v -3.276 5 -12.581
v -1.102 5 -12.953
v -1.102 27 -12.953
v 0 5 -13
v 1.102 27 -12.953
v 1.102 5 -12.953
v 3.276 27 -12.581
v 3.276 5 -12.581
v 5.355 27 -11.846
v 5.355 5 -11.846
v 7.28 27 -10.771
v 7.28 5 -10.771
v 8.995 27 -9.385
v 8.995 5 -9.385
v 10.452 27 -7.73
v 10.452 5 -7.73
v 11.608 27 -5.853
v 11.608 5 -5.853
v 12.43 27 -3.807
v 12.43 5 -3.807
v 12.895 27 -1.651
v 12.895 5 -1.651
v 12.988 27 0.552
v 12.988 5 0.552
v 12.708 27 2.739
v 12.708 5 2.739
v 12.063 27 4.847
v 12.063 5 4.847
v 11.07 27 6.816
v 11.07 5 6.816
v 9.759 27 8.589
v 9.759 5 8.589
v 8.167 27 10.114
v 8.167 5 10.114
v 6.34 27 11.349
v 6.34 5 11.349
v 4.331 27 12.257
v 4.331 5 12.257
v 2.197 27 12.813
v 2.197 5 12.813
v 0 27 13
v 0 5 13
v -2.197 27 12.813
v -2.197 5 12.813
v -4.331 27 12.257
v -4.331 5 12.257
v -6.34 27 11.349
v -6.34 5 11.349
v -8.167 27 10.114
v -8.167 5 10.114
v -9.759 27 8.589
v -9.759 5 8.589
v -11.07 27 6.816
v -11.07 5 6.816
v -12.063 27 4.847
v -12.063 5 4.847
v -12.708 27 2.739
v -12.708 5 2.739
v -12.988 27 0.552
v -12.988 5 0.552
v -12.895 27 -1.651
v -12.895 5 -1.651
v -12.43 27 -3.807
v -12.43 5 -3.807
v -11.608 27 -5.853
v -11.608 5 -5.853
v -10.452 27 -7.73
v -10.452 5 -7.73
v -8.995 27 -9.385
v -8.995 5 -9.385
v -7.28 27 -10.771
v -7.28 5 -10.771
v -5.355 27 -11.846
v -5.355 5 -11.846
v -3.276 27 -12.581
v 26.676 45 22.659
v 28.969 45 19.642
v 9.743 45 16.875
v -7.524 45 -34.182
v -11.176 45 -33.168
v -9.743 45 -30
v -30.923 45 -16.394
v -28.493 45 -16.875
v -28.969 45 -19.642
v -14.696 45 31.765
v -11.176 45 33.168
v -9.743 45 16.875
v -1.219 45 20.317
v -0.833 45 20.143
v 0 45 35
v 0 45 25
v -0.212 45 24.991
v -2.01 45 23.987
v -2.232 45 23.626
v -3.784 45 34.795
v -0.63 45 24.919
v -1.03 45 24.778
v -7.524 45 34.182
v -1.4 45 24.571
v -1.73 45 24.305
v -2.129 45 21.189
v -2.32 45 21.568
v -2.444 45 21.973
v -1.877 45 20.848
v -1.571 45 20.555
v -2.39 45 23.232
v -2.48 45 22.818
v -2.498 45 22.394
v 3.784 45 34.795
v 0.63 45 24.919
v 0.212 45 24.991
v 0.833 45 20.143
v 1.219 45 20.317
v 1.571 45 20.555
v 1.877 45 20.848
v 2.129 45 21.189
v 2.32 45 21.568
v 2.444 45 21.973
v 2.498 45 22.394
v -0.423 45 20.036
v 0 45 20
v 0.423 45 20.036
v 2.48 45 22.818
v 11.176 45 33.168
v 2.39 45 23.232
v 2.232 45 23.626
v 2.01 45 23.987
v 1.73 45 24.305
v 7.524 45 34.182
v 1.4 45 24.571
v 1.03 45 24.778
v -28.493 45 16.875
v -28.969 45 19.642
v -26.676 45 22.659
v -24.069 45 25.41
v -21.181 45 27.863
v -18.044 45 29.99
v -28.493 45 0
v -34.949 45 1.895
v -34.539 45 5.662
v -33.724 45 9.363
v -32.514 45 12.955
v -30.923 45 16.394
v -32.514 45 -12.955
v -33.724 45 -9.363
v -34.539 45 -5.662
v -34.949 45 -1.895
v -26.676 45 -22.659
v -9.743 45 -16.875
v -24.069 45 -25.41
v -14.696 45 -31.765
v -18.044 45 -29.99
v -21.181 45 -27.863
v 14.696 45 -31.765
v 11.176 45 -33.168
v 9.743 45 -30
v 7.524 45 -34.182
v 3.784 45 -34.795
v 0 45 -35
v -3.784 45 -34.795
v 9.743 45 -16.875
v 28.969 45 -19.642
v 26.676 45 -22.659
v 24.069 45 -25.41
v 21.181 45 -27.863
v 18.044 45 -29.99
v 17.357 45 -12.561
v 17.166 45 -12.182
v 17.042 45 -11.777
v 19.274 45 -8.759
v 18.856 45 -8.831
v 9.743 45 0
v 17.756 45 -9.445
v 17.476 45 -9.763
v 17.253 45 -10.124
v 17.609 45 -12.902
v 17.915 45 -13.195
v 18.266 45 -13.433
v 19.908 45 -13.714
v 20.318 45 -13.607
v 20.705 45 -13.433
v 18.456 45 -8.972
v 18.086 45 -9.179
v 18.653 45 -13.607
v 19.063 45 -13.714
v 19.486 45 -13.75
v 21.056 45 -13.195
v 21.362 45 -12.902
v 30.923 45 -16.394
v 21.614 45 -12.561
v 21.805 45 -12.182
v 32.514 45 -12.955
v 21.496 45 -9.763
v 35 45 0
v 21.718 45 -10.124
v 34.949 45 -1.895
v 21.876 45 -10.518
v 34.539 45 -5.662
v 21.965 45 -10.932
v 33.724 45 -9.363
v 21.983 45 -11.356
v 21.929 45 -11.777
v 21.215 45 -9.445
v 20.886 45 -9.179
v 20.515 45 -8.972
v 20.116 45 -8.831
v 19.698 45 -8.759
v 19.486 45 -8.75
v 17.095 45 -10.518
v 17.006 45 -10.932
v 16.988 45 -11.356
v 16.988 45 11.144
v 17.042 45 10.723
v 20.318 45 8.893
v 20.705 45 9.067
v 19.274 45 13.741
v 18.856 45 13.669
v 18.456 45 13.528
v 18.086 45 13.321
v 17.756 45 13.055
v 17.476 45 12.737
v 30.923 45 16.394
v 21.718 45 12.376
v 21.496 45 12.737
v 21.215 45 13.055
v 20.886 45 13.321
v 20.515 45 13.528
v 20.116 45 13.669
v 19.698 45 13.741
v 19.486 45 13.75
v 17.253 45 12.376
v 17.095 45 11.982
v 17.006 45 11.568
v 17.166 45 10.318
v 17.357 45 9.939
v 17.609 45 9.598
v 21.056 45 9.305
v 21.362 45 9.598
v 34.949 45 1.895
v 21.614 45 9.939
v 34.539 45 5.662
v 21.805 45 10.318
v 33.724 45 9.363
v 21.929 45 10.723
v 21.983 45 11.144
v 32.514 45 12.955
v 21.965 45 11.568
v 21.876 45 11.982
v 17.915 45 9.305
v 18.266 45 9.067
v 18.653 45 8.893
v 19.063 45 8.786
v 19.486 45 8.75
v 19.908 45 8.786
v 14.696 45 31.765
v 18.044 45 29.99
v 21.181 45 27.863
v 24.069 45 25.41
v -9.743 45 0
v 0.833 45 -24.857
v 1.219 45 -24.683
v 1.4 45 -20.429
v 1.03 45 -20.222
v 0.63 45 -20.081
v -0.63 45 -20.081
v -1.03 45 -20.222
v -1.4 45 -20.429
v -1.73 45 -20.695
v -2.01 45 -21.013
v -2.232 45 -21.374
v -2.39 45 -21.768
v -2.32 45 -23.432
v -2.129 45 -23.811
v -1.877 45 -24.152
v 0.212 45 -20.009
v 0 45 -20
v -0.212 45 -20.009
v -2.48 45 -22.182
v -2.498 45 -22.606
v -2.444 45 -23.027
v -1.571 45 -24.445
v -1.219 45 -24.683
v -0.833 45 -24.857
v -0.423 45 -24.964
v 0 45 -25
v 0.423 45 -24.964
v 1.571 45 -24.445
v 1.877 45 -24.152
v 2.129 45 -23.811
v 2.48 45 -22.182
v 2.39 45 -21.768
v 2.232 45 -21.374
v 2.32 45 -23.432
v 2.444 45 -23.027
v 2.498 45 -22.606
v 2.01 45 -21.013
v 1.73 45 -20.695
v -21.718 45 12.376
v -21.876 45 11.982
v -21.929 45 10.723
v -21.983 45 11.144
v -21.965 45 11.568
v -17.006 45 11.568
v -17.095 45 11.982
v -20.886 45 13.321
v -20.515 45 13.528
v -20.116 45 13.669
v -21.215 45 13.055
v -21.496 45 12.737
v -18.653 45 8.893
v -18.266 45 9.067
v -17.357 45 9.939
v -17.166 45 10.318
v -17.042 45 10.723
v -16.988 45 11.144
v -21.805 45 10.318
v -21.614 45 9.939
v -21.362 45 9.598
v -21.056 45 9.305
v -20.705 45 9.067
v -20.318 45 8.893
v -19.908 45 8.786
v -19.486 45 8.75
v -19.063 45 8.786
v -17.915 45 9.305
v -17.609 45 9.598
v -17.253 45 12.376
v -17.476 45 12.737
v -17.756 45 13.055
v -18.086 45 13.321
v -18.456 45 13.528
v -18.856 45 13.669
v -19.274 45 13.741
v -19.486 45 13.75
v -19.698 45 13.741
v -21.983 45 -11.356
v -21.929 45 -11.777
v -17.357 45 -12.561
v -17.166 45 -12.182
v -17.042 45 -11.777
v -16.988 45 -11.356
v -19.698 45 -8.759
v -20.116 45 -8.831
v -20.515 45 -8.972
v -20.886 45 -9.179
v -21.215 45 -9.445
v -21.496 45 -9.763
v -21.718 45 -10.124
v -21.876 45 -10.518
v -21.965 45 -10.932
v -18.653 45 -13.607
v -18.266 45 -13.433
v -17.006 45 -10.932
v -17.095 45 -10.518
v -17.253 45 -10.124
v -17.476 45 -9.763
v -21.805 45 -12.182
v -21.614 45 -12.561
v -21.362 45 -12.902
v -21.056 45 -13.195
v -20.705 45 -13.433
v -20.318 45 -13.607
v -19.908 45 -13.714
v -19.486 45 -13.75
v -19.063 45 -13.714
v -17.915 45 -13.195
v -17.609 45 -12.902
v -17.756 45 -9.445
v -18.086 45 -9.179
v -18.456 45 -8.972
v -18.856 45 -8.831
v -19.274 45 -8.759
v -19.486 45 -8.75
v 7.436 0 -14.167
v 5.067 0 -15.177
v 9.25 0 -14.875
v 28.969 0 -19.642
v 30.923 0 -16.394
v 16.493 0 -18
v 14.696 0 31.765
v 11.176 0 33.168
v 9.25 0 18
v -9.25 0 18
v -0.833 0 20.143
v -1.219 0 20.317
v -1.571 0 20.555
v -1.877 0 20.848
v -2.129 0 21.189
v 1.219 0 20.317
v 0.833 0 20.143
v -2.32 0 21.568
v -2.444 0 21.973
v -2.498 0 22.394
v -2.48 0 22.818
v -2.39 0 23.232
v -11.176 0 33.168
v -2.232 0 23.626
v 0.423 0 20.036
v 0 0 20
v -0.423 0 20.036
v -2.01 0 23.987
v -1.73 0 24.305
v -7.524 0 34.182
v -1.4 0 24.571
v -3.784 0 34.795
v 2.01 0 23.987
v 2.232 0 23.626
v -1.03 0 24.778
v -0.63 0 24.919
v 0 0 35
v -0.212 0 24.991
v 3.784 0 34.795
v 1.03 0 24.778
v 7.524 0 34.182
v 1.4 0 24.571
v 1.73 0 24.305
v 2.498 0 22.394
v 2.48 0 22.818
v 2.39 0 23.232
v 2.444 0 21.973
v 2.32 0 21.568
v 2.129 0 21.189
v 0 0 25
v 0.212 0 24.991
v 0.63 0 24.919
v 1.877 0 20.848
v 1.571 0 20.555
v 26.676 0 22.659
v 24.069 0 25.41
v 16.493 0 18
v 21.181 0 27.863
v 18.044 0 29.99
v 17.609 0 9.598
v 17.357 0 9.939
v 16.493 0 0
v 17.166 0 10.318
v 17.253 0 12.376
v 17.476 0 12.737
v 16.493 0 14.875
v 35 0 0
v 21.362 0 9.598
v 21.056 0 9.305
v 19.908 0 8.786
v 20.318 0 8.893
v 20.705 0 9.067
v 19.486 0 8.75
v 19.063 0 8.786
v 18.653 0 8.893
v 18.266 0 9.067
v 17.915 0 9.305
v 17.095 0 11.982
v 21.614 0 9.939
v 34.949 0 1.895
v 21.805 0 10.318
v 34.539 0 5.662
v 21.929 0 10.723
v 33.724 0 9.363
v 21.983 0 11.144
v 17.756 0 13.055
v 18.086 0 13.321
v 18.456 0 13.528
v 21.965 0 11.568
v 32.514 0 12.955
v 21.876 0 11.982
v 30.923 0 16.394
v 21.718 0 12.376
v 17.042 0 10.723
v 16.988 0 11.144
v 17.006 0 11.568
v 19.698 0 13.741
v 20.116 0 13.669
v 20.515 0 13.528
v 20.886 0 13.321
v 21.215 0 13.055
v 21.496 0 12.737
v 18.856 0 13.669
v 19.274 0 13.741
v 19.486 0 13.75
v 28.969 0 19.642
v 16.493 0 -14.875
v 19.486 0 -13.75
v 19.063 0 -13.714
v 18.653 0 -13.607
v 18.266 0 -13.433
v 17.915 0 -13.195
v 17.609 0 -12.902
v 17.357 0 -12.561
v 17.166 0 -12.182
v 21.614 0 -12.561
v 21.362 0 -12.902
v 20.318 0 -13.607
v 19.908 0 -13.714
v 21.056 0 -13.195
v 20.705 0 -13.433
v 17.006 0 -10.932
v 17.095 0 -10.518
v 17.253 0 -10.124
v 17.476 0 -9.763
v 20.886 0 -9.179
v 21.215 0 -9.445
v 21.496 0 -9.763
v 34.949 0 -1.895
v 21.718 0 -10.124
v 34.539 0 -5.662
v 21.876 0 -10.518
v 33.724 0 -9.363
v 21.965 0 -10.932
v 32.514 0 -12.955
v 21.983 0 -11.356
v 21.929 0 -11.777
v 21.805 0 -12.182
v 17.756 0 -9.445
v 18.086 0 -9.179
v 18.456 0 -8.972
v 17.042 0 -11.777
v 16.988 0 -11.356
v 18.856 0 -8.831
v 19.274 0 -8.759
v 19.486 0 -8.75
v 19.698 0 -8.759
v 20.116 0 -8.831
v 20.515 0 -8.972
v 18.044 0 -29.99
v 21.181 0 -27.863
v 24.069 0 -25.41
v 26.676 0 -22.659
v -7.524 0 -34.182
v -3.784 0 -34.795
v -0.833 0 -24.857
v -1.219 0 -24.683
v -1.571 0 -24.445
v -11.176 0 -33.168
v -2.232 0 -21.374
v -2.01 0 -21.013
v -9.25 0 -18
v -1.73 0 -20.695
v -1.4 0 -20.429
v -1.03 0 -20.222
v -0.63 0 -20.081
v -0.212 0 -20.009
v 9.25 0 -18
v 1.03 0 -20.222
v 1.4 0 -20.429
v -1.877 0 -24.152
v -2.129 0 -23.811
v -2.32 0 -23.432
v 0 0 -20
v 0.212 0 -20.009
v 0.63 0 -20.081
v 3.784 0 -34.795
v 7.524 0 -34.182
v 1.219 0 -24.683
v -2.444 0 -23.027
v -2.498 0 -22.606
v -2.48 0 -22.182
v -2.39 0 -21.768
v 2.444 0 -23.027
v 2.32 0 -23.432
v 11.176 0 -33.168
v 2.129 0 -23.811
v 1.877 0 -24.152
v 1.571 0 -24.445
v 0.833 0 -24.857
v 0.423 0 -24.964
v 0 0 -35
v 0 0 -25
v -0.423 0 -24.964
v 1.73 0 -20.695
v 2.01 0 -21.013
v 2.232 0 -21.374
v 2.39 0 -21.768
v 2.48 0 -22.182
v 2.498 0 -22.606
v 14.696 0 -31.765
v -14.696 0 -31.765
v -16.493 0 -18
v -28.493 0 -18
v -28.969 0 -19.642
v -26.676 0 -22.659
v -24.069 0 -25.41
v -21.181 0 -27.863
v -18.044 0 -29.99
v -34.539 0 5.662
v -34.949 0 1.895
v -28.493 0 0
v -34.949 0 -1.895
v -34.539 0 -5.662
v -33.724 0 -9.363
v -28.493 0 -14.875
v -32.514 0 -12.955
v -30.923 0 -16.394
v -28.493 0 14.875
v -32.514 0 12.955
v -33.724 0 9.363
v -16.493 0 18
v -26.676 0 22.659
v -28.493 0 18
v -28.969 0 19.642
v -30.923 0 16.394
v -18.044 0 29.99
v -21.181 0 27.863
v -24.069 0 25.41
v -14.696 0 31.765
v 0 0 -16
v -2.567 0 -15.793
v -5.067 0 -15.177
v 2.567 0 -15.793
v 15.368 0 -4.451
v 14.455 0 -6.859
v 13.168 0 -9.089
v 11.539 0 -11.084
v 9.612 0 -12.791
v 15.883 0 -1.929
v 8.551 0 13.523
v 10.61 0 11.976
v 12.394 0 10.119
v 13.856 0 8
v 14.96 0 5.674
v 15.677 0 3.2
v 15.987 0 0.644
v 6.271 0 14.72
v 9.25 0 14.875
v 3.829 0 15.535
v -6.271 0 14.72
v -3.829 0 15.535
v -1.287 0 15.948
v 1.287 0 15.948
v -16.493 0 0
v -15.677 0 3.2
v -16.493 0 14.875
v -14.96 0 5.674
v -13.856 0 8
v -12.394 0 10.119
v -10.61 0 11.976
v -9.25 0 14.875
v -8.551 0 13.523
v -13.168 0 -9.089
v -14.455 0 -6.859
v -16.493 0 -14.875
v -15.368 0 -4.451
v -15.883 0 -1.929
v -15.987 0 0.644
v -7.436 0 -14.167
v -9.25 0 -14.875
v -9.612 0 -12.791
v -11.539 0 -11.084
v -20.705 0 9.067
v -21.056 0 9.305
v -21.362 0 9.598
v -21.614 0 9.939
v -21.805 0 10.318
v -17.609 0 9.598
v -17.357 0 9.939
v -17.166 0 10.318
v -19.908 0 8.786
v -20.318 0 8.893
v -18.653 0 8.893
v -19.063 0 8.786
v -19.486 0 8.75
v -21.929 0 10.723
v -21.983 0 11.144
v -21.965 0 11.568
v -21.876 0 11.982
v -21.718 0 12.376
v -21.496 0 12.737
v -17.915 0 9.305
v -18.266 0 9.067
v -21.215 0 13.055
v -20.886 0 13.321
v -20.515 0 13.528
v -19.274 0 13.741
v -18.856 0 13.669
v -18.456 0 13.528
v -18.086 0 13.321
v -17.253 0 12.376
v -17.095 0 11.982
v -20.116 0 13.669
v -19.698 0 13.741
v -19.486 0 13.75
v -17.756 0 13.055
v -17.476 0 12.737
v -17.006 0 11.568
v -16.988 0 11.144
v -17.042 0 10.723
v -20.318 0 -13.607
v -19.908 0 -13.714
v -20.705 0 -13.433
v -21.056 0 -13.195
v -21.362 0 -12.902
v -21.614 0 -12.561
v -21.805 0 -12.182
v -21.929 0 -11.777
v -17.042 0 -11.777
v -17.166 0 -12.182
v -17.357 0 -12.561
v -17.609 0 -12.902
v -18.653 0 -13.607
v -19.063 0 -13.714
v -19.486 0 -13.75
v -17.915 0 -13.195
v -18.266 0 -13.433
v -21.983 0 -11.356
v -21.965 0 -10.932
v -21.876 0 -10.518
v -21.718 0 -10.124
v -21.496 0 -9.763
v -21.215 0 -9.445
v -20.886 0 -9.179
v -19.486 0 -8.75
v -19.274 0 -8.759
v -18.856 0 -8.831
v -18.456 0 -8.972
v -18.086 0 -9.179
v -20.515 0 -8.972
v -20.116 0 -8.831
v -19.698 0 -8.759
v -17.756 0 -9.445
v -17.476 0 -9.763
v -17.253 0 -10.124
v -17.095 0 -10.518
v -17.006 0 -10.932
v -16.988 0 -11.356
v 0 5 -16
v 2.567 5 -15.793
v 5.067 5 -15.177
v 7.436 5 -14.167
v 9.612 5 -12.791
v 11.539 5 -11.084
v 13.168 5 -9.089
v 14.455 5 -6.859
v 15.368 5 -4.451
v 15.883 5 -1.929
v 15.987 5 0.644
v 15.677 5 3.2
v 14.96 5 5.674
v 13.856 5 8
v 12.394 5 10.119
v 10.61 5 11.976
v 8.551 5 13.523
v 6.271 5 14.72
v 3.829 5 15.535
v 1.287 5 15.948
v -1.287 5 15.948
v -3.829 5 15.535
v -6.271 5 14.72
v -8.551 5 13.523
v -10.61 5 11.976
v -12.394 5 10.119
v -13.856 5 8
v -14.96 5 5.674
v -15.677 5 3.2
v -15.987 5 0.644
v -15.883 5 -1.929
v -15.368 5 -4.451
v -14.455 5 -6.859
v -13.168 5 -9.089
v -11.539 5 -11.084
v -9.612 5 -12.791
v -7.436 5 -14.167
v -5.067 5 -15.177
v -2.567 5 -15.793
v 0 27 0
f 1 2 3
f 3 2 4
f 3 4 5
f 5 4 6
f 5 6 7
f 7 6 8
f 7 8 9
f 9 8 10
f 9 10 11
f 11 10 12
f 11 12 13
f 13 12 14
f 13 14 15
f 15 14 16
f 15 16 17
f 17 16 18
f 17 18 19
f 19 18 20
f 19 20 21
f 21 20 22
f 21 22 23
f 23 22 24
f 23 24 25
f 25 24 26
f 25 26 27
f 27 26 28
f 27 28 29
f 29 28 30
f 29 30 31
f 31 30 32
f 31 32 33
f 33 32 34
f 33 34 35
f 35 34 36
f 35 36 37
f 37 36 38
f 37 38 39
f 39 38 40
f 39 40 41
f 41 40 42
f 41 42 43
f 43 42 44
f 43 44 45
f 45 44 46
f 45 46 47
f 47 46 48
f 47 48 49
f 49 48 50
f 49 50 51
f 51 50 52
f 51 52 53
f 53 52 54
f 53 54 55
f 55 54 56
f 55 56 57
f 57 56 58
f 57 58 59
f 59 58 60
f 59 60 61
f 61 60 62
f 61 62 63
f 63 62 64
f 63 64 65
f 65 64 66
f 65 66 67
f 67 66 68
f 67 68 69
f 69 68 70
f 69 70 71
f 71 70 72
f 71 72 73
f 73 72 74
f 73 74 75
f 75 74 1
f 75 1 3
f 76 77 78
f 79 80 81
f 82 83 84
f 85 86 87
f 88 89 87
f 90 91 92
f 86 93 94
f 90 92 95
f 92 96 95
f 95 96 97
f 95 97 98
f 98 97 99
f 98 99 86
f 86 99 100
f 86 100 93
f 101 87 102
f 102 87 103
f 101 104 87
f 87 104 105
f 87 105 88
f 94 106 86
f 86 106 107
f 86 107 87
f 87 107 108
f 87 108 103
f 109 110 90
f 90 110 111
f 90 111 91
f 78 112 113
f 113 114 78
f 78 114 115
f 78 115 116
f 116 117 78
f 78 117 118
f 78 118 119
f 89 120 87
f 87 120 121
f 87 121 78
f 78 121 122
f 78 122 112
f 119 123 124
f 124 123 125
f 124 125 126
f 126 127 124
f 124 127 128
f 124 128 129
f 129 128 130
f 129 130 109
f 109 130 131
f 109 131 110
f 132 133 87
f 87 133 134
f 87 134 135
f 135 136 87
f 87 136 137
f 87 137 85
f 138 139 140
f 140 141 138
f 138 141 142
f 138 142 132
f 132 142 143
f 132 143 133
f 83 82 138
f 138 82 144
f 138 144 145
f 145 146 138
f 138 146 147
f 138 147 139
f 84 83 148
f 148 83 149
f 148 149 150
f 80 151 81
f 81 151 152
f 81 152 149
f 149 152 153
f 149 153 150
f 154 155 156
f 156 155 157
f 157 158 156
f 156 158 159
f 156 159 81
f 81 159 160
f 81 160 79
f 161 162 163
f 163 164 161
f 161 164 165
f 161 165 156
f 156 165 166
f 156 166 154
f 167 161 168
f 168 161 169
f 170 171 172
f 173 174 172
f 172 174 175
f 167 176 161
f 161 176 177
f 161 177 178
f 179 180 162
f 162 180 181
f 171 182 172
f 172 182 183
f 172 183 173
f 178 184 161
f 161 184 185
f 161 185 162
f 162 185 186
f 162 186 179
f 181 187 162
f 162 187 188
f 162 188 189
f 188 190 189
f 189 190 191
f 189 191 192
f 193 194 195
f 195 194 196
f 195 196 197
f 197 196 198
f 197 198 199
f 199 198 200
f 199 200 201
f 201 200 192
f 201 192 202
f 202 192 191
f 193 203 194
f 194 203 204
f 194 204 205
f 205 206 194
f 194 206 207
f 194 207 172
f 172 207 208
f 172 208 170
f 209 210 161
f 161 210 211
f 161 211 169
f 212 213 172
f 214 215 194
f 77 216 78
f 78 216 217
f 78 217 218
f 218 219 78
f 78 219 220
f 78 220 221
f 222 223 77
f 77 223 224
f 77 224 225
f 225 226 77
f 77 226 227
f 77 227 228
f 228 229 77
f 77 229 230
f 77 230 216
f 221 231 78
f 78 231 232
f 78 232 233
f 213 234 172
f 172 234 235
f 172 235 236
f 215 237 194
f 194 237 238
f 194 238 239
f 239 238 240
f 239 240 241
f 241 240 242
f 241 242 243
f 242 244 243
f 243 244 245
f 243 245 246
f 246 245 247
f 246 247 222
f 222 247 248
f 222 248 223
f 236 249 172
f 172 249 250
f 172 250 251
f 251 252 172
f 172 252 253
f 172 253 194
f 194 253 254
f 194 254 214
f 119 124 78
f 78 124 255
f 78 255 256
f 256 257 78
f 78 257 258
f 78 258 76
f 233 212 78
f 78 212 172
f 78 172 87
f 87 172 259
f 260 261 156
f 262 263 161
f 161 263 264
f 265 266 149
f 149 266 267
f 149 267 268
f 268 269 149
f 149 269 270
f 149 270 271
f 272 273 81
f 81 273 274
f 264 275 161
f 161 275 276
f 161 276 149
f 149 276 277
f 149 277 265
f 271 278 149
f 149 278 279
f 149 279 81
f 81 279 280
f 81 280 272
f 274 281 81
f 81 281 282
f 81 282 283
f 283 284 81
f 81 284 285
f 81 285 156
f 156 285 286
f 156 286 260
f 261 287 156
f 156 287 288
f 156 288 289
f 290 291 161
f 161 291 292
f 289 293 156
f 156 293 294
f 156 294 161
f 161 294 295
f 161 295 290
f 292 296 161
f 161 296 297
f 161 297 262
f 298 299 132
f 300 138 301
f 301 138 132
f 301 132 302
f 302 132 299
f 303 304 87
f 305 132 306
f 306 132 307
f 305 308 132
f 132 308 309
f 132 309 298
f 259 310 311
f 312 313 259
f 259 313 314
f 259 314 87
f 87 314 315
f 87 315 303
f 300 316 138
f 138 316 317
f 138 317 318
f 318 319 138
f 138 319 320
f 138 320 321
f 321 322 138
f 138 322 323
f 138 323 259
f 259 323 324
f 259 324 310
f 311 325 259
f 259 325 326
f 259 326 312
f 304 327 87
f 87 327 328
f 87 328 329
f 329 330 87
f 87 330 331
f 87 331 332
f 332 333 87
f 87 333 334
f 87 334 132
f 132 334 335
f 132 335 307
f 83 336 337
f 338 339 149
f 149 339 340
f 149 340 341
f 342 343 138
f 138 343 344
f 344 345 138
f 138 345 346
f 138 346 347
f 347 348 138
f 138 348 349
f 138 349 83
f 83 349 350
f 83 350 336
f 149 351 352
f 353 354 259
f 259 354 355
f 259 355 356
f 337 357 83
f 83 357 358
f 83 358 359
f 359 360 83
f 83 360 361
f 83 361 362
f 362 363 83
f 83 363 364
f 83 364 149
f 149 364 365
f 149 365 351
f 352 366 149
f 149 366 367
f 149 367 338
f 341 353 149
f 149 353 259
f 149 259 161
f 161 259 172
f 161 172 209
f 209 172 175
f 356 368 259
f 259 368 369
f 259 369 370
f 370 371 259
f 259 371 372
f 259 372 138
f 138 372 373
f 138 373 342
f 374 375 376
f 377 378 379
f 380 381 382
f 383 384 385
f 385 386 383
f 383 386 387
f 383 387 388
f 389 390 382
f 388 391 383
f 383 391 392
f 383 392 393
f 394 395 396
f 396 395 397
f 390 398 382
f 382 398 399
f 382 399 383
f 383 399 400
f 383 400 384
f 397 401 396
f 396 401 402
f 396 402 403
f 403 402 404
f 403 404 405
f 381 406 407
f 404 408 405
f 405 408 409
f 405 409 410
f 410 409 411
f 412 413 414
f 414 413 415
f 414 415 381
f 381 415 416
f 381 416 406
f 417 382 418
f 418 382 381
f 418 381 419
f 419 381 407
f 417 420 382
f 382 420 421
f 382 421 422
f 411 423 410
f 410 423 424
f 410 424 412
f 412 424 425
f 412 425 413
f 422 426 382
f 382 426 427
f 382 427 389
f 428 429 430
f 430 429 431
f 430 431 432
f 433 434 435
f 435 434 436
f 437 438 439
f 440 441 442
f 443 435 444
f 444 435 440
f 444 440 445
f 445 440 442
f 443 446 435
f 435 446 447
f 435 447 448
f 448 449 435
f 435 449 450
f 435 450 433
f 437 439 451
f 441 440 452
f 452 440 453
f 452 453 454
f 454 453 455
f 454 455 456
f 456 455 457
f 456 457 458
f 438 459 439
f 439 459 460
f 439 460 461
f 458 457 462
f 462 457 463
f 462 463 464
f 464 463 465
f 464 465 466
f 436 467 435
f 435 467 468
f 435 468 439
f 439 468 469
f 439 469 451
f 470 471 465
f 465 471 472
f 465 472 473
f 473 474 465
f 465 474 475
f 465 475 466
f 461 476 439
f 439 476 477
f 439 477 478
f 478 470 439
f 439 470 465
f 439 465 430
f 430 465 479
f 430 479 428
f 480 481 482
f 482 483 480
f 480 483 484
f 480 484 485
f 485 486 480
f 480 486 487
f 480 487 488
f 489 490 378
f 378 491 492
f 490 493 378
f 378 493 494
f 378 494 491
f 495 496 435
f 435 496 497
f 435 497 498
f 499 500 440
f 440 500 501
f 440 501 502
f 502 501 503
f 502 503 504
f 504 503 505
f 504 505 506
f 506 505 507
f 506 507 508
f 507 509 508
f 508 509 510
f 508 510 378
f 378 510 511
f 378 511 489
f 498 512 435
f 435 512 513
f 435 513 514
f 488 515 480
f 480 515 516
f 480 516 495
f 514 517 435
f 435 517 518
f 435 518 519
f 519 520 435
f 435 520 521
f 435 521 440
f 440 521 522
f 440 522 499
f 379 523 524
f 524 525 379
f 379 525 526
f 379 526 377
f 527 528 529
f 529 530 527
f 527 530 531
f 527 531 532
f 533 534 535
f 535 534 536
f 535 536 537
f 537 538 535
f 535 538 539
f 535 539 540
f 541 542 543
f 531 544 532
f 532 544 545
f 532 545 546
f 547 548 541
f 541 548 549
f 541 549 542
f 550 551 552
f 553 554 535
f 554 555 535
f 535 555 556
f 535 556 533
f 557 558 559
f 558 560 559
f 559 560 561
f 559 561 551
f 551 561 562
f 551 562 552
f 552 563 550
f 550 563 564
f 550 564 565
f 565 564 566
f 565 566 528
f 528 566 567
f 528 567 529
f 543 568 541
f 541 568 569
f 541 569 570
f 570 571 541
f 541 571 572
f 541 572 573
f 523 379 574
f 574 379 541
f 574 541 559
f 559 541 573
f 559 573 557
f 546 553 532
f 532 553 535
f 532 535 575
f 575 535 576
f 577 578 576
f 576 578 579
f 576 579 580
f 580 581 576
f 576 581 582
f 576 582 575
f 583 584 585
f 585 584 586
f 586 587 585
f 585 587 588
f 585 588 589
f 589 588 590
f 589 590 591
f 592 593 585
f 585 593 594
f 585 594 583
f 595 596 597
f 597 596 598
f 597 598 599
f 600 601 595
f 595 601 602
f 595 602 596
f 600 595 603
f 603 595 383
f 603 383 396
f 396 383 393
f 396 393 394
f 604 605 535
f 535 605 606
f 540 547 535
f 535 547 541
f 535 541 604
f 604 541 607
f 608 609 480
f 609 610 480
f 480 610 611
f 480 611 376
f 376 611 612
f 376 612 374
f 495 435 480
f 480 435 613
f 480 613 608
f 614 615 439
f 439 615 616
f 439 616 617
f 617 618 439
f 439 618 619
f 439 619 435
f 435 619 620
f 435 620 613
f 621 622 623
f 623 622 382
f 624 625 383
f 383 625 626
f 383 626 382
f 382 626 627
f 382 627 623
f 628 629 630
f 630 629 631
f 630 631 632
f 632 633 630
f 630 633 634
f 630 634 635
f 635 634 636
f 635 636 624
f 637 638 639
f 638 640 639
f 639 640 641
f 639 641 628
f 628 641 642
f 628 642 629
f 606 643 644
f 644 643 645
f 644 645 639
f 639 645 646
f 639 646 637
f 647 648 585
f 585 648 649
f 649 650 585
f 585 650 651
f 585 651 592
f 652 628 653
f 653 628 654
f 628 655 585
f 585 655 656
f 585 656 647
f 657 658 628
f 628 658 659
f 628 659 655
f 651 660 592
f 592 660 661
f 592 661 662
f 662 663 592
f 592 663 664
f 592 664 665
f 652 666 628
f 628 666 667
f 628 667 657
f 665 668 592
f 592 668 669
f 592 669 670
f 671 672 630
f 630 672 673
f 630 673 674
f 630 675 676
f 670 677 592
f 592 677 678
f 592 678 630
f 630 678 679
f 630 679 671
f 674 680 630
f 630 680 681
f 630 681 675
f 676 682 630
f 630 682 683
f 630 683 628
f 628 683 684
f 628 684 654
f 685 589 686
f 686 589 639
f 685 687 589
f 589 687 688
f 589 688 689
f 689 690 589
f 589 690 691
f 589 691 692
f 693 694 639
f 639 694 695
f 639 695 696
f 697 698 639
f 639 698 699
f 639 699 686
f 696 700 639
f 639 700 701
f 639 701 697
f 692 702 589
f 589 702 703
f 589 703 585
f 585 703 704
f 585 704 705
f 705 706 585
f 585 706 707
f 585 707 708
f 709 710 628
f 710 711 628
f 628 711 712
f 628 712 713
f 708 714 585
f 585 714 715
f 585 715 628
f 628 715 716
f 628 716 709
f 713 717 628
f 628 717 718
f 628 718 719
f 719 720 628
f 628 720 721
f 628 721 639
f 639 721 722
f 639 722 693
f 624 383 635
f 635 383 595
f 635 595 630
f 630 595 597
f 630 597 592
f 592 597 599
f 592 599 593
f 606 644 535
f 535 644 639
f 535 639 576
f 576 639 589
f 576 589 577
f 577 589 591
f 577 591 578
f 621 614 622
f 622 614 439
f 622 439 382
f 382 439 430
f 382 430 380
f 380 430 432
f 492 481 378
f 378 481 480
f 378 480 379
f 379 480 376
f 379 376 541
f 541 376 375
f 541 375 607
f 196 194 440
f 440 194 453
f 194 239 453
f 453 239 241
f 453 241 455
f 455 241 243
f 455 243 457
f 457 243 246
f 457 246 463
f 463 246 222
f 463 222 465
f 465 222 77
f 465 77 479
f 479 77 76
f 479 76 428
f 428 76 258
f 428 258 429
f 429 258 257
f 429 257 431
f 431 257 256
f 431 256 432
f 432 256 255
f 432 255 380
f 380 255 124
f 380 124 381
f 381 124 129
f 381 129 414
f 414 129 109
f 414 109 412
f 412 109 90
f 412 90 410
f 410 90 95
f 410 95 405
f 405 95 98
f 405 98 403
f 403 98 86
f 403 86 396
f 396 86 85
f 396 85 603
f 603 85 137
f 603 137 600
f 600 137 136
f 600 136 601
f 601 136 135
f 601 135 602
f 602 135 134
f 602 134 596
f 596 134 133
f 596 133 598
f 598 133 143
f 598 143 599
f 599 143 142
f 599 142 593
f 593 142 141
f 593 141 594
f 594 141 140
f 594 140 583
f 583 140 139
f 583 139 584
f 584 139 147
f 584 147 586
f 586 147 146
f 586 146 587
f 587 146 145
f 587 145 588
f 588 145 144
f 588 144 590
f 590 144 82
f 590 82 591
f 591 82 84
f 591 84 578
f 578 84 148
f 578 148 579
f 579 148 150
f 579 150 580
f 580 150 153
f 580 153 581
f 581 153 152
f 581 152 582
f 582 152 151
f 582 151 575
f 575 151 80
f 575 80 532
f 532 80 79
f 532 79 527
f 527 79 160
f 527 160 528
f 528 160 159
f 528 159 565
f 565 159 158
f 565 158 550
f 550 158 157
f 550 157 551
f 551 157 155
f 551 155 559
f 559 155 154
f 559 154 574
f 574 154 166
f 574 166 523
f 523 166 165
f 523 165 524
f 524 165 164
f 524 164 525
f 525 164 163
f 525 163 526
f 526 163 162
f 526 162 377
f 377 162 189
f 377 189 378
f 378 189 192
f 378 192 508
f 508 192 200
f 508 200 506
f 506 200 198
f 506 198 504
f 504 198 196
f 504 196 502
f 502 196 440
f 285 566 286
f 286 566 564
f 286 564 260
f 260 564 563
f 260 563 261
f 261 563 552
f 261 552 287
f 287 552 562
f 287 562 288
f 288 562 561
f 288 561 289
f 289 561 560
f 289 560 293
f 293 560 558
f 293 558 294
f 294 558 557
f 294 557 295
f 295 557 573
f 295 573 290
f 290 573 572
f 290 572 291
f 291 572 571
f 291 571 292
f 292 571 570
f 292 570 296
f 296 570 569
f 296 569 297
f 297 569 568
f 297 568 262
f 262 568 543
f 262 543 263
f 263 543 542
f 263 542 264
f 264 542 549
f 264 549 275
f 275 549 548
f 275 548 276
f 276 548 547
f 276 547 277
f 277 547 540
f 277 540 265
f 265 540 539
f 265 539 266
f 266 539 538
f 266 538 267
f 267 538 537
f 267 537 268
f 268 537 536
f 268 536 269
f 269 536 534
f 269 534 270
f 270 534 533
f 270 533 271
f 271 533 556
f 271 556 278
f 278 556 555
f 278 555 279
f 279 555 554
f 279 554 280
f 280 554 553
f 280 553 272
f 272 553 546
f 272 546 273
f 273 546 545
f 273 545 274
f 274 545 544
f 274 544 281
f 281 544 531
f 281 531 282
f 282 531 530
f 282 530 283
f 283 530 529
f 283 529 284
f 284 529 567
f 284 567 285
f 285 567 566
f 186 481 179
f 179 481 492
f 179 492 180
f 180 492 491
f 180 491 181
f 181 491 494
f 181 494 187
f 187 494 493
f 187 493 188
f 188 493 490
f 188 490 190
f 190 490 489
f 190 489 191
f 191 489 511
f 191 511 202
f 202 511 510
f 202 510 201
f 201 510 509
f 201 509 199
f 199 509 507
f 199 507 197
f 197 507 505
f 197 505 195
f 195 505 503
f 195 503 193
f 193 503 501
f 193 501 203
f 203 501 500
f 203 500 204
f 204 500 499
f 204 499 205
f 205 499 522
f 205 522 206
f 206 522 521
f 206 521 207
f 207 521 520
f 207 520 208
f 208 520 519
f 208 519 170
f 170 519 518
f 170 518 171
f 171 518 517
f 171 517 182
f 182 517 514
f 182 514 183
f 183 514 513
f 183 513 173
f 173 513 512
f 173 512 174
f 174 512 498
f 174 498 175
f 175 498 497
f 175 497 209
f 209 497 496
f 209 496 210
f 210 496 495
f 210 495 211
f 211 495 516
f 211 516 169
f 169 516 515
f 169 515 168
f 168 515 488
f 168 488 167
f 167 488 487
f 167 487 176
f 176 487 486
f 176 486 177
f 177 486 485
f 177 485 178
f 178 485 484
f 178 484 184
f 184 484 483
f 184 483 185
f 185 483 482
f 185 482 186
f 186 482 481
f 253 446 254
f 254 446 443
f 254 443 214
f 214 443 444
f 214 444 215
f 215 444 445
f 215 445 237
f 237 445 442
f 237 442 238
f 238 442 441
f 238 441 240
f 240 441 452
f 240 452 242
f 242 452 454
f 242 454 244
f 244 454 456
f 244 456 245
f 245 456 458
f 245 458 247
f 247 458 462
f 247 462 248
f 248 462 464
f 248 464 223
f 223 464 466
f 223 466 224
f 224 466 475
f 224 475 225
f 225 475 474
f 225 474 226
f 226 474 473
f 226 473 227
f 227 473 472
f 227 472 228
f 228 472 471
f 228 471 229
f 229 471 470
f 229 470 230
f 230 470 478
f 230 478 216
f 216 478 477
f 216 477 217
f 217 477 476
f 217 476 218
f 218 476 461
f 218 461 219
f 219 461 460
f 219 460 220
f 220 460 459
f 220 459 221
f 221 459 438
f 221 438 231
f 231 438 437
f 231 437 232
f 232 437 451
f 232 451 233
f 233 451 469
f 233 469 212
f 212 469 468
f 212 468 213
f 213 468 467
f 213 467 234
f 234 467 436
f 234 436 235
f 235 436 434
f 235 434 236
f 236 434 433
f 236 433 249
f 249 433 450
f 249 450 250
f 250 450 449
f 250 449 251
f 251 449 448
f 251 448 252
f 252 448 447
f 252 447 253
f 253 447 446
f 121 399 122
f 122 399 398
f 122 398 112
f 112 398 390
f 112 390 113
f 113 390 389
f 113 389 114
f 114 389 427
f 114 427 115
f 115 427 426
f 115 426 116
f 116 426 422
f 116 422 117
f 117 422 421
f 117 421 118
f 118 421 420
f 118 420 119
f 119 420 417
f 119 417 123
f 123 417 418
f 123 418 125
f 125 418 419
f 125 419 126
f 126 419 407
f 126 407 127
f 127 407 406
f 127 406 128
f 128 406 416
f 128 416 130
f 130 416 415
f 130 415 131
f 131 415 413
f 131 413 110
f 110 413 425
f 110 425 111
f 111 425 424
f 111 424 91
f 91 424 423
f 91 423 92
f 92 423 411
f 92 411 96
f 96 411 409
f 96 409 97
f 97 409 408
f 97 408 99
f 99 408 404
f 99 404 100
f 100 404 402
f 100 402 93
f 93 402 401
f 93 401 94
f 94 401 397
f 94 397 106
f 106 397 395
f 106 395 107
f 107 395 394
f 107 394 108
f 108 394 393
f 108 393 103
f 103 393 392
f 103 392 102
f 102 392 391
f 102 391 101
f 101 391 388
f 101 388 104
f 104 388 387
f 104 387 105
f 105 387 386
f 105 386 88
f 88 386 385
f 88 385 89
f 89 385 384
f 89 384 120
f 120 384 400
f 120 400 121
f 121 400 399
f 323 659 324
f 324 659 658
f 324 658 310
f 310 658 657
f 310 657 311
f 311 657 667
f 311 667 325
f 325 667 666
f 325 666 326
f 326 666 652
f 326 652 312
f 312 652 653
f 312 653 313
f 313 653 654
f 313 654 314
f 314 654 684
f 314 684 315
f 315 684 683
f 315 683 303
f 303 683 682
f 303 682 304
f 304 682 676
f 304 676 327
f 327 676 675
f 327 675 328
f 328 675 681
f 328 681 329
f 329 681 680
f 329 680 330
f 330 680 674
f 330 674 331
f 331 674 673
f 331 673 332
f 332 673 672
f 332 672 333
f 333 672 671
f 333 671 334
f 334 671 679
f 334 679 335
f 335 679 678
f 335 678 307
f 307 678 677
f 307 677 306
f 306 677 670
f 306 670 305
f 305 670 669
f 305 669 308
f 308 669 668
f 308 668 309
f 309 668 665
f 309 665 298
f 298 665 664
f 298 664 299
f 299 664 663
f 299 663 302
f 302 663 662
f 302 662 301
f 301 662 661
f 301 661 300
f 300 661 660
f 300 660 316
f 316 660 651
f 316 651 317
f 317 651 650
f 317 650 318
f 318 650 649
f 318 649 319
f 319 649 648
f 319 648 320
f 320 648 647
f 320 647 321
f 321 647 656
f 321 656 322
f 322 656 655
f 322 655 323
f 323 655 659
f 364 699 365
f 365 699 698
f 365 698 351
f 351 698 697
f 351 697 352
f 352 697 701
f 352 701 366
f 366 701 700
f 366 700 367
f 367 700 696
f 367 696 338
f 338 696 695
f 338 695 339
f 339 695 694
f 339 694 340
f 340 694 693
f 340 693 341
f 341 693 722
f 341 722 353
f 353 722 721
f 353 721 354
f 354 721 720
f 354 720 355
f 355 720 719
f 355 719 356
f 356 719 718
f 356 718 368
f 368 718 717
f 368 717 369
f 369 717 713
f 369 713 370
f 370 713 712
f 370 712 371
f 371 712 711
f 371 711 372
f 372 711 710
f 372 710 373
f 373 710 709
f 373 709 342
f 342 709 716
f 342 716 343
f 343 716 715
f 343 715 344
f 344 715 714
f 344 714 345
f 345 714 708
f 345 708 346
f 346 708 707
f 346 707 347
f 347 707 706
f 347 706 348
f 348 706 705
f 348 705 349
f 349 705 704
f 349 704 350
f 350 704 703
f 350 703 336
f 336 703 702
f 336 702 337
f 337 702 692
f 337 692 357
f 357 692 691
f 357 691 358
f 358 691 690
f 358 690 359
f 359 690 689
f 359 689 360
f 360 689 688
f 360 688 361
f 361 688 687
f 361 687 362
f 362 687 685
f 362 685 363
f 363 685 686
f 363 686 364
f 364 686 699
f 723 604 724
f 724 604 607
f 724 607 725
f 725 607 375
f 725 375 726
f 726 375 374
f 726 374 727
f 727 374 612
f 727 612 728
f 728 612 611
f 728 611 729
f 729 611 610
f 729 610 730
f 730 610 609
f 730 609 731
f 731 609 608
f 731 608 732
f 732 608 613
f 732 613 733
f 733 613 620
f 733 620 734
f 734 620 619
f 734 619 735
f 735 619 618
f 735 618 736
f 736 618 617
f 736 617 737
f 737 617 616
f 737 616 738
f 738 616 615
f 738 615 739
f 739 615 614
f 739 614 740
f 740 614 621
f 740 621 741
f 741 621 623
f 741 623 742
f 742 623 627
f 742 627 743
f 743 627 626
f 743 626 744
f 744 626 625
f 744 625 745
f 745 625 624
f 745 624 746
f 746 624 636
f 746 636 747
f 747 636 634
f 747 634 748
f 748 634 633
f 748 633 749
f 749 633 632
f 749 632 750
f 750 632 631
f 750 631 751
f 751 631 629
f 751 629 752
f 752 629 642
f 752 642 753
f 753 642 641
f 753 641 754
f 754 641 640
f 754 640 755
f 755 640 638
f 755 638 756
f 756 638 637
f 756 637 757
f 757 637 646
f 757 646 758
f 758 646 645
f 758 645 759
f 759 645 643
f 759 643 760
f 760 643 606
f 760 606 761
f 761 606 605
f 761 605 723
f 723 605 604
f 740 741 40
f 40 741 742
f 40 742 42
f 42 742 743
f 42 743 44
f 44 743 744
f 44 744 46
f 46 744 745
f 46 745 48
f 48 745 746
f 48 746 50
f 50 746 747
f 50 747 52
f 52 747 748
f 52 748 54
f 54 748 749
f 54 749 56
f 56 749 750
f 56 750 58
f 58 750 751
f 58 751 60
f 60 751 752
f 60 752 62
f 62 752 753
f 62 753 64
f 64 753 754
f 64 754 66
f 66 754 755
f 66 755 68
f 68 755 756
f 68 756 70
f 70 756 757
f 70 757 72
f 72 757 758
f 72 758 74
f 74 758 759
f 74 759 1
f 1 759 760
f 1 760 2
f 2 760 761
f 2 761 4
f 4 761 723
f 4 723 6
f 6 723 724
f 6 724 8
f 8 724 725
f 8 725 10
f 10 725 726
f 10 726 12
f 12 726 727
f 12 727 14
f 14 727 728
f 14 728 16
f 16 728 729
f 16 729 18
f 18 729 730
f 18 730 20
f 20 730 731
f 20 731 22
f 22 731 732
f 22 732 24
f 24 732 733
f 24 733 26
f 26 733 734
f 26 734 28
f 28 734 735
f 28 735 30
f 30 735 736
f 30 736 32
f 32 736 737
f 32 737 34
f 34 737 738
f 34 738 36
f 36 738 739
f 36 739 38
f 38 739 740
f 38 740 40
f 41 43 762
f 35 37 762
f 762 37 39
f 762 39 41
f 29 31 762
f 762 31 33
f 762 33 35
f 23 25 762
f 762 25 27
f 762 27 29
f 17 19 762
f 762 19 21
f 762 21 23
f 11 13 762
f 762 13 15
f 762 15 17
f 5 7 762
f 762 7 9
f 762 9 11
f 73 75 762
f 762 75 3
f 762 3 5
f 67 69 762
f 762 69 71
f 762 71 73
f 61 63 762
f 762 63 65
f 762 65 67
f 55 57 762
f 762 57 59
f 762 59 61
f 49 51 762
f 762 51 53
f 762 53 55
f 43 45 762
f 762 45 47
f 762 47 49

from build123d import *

# Parameters (mm, degrees)
SKETCH1_R           = 35
SKETCH1_R_2         = 5
SKETCH1_R_3         = 2.5
BOSS_EXTRUDE1_DEPTH = 45
SKETCH2_R           = 16
CUT_EXTRUDE1_DEPTH  = 5
SKETCH5_R           = 13
CUT_EXTRUDE2_DEPTH  = 40
SKETCH6_R           = 13
BOSS_EXTRUDE2_DEPTH = 18


with BuildPart() as part:
    # Sketch1 → Boss-Extrude1 (new body)
    with BuildSketch(Plane(origin=(0, 0, 0), x_dir=(1, 0, 0), z_dir=(0, 1, 0))):
        with Locations(Location((0, 0, 0), (0, 0, 90))):
            Circle(SKETCH1_R)
        with Locations(Location((0, 0, 0), (0, 0, 90))):
            Circle(SKETCH1_R_2, mode=Mode.SUBTRACT)
        with Locations(Location((0, 22.5, 0), (0, 0, 90))):
            Circle(SKETCH1_R_3, mode=Mode.SUBTRACT)
        with Locations(Location((19.485571585, 11.25, 0), (0, 0, 90))):
            Circle(SKETCH1_R_3, mode=Mode.SUBTRACT)
        with Locations(Location((19.485571585, -11.25, 0), (0, 0, 90))):
            Circle(SKETCH1_R_3, mode=Mode.SUBTRACT)
        with Locations(Location((0, -22.5, 0), (0, 0, 90))):
            Circle(SKETCH1_R_3, mode=Mode.SUBTRACT)
        with Locations(Location((-19.485571585, -11.25, 0), (0, 0, 90))):
            Circle(SKETCH1_R_3, mode=Mode.SUBTRACT)
        with Locations(Location((-19.485571585, 11.25, 0), (0, 0, 90))):
            Circle(SKETCH1_R_3, mode=Mode.SUBTRACT)
    extrude(amount=BOSS_EXTRUDE1_DEPTH)

    # Sketch2 → Cut-Extrude1 (cut)
    with BuildSketch(Plane.XZ):
        with Locations(Location((0, 0, 0), (0, 0, 270))):
            Circle(SKETCH2_R)
    extrude(amount=-CUT_EXTRUDE1_DEPTH, mode=Mode.SUBTRACT)

    # Sketch5 → Cut-Extrude2 (cut)
    with BuildSketch(Plane(origin=(0, 45, 0), x_dir=(1, 0, 0), z_dir=(0, 1, 0))):
        with Locations(Location((0, 0, 0), (0, 0, 270))):
            Circle(SKETCH5_R)
    extrude(amount=-CUT_EXTRUDE2_DEPTH, mode=Mode.SUBTRACT)

    # Sketch6 → Boss-Extrude2 (add)
    with BuildSketch(Plane(origin=(0, 45, 0), x_dir=(1, 0, 0), z_dir=(0, 1, 0))):
        with Locations(Location((0, 0, 0), (0, 0, 270))):
            Circle(SKETCH6_R)
    extrude(amount=-BOSS_EXTRUDE2_DEPTH)


solid = part.part
